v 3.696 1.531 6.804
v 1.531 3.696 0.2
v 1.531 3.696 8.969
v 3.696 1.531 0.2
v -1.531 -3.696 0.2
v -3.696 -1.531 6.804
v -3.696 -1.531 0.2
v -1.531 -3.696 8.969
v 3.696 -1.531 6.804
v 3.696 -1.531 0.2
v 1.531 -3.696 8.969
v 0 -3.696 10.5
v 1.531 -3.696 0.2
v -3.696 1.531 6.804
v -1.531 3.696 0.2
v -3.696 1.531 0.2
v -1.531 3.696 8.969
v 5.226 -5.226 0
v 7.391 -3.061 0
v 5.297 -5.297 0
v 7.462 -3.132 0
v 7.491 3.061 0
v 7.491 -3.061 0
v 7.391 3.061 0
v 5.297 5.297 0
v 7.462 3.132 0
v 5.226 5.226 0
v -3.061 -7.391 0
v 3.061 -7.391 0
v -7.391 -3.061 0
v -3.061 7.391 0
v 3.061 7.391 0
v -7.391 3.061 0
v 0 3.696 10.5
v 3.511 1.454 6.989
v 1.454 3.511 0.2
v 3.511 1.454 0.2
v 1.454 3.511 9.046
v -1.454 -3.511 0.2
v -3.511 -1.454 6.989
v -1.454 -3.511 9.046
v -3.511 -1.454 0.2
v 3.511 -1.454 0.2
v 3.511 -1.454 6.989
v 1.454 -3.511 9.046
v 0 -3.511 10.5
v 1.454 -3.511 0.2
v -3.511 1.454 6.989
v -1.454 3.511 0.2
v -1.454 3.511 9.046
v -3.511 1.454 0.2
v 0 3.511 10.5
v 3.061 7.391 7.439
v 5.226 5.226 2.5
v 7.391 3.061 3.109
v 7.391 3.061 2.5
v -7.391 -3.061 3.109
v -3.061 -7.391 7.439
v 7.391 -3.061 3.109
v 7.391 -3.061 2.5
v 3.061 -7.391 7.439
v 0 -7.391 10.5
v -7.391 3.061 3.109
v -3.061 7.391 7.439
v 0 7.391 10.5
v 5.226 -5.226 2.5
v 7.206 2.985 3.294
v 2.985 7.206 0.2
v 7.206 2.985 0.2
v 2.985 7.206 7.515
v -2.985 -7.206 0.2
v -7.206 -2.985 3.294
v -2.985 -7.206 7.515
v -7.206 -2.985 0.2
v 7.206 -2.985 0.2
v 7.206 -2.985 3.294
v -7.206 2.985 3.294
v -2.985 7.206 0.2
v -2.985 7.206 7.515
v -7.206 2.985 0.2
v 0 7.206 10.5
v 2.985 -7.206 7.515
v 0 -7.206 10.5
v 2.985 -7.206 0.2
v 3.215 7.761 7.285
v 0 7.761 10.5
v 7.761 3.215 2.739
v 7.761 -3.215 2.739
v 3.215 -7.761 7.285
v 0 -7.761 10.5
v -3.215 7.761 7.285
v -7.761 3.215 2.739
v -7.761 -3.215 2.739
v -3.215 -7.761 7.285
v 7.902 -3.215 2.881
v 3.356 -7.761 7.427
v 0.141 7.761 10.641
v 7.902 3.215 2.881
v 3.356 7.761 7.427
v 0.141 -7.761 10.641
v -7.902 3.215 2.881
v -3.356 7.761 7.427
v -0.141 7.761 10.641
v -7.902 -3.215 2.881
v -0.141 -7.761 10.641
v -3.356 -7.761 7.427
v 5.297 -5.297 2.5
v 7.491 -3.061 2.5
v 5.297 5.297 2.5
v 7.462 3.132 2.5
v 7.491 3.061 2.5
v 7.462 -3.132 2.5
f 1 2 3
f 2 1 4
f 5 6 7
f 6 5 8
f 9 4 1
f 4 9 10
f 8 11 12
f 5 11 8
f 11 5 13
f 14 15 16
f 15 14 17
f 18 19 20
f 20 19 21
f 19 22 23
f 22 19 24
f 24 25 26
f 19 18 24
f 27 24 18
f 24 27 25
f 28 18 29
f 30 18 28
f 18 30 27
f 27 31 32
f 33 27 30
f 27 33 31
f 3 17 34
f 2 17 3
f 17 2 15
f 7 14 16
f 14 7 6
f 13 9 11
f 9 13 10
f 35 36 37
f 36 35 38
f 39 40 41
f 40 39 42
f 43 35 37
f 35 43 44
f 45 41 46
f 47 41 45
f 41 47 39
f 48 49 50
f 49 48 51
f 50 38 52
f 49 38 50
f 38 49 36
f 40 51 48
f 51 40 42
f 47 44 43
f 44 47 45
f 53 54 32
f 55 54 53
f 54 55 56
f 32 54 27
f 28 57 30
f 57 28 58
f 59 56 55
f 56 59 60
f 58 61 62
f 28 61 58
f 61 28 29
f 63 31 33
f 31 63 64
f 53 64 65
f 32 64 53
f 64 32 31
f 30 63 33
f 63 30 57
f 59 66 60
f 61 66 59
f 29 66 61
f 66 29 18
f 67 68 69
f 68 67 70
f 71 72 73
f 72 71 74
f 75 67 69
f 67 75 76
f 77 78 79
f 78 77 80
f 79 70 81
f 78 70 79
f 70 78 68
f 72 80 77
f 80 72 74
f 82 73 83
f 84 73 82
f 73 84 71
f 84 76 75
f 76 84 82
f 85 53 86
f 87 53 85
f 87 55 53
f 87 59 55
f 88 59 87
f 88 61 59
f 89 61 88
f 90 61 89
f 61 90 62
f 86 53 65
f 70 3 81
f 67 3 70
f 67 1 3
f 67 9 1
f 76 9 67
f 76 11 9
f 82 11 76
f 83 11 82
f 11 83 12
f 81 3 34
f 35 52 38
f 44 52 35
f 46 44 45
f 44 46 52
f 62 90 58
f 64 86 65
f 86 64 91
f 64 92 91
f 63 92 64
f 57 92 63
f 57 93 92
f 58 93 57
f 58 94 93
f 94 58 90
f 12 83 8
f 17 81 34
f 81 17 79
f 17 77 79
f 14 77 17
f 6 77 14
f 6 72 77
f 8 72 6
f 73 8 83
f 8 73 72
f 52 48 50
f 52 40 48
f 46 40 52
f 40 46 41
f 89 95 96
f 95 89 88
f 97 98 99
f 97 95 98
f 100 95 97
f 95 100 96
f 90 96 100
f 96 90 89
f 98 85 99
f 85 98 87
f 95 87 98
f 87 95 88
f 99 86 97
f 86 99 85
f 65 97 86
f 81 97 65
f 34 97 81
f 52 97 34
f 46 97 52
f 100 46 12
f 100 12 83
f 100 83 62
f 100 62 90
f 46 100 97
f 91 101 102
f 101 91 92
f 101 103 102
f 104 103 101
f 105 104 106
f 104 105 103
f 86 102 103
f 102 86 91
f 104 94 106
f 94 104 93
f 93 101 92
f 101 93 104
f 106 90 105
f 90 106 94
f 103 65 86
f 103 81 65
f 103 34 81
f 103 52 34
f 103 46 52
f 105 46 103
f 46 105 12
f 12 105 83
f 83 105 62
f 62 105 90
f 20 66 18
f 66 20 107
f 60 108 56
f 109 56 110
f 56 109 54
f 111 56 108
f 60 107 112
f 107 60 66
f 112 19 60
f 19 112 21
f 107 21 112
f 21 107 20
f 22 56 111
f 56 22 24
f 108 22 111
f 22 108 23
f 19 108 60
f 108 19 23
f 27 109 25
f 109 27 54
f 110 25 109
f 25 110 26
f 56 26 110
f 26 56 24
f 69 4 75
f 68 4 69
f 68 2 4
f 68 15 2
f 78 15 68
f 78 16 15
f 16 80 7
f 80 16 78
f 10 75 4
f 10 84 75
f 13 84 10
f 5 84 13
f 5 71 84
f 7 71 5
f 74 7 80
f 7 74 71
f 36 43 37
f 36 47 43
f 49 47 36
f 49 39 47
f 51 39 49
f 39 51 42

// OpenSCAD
// configure the rendering
show_floor = true;
show_roof = true;

// constants
gr = 1.61803; // golden ration

// configure the house
wt = 0.2;  // wall thickness
corners = 8; // number of corners in main room
mrr = 4; // main room radius
mrh = 4; // main room height
mrrh = 2; // main room roof height
hr = mrr + 4; // house radius
orh = 2.5; // outer room height
orrh = 1; // outer room roof height

// calculate approximate house size
function house_size() =
   let(v=360/corners/2)
   let(a=hr*sin(v))
   let(b=hr*cos(v))
   (corners-2)*a*b;
echo("area of house = ", house_size());

// calculate the coordinates for the corners
function p(i, r) =
   let (vz = 360/corners/2)
   let (angle=i*(360/corners) - vz)
   [ r*cos(angle)
   , r*sin(angle)
   ];

function inbetween(p1, p2, procent) =
    let (x_diff = p2[0] - p1[0])
    let (y_diff = p2[1] - p1[1])
    [ p1[0] + x_diff*procent/100
    , p1[1] + y_diff*procent/100
    ];

// create a wall of thickness wt
module wall(p1, p2, h) {
    let (x_diff = p2[0] - p1[0])
    let (y_diff = p2[1] - p1[1])
    let (len = sqrt(pow(x_diff, 2) +
                    pow(y_diff, 2)))
    linear_extrude(height = h)
    translate(p1)
    rotate(atan2(y_diff, x_diff))
    translate([0, -wt/2])
    square([len, wt]);
}

module octagon(r, h) {
    coords=[for (i = [0:corners-1]) p(i, r)];
    linear_extrude(height = h)
    polygon(coords);
}

module octawalls(r, h) {
    difference () {
        octagon(r, h);
        translate([0, 0, -wt])
        octagon(r - wt, h + 2*wt);
    }
}

module main_roof(r, th) {
    vr = 45; // main roof angle
    rr = r + 0.4; // roof radius
    module half_roof() {
        assert(corners % 2 == 0);
        translate([0,0, orh + r*tan(vr)])
        rotate(vr, [0, 1, 0])
        rotate(-90)
        difference() {
            scale([1,1/cos(vr), 1])
            octagon(rr, th);
            translate([0, -rr, 0])
            cube([rr*2, rr*2, 3*th], center = true);
        }
    }
    half_roof();
    rotate(180) half_roof();
}

// floor of main room
if (show_floor) {
    octagon(hr, wt);
}
// walls of main room
difference() {
    union() {
        octawalls(mrr, mrh+6.5);
        octawalls(hr, mrh+6.5);
    }
    main_roof(hr, wt*200);
}
// roof of main room
if (show_roof) {
    main_roof(hr, wt);
}

// winter garden
module winter_garden() {
    // calculate the corners
    p1 = inbetween(p(corners-1,hr), p(0, hr), 50);
    p2 = p(0, hr);
    p3 = p(1, hr);
    p4 = inbetween(p(1,hr), p(2, hr), 50);
    // walls
    color("gray") wall(p1, p2, orh);
    color("gray") wall(p2, p3, orh);
    color("gray") wall(p3, p4, orh);
}
winter_garden();
